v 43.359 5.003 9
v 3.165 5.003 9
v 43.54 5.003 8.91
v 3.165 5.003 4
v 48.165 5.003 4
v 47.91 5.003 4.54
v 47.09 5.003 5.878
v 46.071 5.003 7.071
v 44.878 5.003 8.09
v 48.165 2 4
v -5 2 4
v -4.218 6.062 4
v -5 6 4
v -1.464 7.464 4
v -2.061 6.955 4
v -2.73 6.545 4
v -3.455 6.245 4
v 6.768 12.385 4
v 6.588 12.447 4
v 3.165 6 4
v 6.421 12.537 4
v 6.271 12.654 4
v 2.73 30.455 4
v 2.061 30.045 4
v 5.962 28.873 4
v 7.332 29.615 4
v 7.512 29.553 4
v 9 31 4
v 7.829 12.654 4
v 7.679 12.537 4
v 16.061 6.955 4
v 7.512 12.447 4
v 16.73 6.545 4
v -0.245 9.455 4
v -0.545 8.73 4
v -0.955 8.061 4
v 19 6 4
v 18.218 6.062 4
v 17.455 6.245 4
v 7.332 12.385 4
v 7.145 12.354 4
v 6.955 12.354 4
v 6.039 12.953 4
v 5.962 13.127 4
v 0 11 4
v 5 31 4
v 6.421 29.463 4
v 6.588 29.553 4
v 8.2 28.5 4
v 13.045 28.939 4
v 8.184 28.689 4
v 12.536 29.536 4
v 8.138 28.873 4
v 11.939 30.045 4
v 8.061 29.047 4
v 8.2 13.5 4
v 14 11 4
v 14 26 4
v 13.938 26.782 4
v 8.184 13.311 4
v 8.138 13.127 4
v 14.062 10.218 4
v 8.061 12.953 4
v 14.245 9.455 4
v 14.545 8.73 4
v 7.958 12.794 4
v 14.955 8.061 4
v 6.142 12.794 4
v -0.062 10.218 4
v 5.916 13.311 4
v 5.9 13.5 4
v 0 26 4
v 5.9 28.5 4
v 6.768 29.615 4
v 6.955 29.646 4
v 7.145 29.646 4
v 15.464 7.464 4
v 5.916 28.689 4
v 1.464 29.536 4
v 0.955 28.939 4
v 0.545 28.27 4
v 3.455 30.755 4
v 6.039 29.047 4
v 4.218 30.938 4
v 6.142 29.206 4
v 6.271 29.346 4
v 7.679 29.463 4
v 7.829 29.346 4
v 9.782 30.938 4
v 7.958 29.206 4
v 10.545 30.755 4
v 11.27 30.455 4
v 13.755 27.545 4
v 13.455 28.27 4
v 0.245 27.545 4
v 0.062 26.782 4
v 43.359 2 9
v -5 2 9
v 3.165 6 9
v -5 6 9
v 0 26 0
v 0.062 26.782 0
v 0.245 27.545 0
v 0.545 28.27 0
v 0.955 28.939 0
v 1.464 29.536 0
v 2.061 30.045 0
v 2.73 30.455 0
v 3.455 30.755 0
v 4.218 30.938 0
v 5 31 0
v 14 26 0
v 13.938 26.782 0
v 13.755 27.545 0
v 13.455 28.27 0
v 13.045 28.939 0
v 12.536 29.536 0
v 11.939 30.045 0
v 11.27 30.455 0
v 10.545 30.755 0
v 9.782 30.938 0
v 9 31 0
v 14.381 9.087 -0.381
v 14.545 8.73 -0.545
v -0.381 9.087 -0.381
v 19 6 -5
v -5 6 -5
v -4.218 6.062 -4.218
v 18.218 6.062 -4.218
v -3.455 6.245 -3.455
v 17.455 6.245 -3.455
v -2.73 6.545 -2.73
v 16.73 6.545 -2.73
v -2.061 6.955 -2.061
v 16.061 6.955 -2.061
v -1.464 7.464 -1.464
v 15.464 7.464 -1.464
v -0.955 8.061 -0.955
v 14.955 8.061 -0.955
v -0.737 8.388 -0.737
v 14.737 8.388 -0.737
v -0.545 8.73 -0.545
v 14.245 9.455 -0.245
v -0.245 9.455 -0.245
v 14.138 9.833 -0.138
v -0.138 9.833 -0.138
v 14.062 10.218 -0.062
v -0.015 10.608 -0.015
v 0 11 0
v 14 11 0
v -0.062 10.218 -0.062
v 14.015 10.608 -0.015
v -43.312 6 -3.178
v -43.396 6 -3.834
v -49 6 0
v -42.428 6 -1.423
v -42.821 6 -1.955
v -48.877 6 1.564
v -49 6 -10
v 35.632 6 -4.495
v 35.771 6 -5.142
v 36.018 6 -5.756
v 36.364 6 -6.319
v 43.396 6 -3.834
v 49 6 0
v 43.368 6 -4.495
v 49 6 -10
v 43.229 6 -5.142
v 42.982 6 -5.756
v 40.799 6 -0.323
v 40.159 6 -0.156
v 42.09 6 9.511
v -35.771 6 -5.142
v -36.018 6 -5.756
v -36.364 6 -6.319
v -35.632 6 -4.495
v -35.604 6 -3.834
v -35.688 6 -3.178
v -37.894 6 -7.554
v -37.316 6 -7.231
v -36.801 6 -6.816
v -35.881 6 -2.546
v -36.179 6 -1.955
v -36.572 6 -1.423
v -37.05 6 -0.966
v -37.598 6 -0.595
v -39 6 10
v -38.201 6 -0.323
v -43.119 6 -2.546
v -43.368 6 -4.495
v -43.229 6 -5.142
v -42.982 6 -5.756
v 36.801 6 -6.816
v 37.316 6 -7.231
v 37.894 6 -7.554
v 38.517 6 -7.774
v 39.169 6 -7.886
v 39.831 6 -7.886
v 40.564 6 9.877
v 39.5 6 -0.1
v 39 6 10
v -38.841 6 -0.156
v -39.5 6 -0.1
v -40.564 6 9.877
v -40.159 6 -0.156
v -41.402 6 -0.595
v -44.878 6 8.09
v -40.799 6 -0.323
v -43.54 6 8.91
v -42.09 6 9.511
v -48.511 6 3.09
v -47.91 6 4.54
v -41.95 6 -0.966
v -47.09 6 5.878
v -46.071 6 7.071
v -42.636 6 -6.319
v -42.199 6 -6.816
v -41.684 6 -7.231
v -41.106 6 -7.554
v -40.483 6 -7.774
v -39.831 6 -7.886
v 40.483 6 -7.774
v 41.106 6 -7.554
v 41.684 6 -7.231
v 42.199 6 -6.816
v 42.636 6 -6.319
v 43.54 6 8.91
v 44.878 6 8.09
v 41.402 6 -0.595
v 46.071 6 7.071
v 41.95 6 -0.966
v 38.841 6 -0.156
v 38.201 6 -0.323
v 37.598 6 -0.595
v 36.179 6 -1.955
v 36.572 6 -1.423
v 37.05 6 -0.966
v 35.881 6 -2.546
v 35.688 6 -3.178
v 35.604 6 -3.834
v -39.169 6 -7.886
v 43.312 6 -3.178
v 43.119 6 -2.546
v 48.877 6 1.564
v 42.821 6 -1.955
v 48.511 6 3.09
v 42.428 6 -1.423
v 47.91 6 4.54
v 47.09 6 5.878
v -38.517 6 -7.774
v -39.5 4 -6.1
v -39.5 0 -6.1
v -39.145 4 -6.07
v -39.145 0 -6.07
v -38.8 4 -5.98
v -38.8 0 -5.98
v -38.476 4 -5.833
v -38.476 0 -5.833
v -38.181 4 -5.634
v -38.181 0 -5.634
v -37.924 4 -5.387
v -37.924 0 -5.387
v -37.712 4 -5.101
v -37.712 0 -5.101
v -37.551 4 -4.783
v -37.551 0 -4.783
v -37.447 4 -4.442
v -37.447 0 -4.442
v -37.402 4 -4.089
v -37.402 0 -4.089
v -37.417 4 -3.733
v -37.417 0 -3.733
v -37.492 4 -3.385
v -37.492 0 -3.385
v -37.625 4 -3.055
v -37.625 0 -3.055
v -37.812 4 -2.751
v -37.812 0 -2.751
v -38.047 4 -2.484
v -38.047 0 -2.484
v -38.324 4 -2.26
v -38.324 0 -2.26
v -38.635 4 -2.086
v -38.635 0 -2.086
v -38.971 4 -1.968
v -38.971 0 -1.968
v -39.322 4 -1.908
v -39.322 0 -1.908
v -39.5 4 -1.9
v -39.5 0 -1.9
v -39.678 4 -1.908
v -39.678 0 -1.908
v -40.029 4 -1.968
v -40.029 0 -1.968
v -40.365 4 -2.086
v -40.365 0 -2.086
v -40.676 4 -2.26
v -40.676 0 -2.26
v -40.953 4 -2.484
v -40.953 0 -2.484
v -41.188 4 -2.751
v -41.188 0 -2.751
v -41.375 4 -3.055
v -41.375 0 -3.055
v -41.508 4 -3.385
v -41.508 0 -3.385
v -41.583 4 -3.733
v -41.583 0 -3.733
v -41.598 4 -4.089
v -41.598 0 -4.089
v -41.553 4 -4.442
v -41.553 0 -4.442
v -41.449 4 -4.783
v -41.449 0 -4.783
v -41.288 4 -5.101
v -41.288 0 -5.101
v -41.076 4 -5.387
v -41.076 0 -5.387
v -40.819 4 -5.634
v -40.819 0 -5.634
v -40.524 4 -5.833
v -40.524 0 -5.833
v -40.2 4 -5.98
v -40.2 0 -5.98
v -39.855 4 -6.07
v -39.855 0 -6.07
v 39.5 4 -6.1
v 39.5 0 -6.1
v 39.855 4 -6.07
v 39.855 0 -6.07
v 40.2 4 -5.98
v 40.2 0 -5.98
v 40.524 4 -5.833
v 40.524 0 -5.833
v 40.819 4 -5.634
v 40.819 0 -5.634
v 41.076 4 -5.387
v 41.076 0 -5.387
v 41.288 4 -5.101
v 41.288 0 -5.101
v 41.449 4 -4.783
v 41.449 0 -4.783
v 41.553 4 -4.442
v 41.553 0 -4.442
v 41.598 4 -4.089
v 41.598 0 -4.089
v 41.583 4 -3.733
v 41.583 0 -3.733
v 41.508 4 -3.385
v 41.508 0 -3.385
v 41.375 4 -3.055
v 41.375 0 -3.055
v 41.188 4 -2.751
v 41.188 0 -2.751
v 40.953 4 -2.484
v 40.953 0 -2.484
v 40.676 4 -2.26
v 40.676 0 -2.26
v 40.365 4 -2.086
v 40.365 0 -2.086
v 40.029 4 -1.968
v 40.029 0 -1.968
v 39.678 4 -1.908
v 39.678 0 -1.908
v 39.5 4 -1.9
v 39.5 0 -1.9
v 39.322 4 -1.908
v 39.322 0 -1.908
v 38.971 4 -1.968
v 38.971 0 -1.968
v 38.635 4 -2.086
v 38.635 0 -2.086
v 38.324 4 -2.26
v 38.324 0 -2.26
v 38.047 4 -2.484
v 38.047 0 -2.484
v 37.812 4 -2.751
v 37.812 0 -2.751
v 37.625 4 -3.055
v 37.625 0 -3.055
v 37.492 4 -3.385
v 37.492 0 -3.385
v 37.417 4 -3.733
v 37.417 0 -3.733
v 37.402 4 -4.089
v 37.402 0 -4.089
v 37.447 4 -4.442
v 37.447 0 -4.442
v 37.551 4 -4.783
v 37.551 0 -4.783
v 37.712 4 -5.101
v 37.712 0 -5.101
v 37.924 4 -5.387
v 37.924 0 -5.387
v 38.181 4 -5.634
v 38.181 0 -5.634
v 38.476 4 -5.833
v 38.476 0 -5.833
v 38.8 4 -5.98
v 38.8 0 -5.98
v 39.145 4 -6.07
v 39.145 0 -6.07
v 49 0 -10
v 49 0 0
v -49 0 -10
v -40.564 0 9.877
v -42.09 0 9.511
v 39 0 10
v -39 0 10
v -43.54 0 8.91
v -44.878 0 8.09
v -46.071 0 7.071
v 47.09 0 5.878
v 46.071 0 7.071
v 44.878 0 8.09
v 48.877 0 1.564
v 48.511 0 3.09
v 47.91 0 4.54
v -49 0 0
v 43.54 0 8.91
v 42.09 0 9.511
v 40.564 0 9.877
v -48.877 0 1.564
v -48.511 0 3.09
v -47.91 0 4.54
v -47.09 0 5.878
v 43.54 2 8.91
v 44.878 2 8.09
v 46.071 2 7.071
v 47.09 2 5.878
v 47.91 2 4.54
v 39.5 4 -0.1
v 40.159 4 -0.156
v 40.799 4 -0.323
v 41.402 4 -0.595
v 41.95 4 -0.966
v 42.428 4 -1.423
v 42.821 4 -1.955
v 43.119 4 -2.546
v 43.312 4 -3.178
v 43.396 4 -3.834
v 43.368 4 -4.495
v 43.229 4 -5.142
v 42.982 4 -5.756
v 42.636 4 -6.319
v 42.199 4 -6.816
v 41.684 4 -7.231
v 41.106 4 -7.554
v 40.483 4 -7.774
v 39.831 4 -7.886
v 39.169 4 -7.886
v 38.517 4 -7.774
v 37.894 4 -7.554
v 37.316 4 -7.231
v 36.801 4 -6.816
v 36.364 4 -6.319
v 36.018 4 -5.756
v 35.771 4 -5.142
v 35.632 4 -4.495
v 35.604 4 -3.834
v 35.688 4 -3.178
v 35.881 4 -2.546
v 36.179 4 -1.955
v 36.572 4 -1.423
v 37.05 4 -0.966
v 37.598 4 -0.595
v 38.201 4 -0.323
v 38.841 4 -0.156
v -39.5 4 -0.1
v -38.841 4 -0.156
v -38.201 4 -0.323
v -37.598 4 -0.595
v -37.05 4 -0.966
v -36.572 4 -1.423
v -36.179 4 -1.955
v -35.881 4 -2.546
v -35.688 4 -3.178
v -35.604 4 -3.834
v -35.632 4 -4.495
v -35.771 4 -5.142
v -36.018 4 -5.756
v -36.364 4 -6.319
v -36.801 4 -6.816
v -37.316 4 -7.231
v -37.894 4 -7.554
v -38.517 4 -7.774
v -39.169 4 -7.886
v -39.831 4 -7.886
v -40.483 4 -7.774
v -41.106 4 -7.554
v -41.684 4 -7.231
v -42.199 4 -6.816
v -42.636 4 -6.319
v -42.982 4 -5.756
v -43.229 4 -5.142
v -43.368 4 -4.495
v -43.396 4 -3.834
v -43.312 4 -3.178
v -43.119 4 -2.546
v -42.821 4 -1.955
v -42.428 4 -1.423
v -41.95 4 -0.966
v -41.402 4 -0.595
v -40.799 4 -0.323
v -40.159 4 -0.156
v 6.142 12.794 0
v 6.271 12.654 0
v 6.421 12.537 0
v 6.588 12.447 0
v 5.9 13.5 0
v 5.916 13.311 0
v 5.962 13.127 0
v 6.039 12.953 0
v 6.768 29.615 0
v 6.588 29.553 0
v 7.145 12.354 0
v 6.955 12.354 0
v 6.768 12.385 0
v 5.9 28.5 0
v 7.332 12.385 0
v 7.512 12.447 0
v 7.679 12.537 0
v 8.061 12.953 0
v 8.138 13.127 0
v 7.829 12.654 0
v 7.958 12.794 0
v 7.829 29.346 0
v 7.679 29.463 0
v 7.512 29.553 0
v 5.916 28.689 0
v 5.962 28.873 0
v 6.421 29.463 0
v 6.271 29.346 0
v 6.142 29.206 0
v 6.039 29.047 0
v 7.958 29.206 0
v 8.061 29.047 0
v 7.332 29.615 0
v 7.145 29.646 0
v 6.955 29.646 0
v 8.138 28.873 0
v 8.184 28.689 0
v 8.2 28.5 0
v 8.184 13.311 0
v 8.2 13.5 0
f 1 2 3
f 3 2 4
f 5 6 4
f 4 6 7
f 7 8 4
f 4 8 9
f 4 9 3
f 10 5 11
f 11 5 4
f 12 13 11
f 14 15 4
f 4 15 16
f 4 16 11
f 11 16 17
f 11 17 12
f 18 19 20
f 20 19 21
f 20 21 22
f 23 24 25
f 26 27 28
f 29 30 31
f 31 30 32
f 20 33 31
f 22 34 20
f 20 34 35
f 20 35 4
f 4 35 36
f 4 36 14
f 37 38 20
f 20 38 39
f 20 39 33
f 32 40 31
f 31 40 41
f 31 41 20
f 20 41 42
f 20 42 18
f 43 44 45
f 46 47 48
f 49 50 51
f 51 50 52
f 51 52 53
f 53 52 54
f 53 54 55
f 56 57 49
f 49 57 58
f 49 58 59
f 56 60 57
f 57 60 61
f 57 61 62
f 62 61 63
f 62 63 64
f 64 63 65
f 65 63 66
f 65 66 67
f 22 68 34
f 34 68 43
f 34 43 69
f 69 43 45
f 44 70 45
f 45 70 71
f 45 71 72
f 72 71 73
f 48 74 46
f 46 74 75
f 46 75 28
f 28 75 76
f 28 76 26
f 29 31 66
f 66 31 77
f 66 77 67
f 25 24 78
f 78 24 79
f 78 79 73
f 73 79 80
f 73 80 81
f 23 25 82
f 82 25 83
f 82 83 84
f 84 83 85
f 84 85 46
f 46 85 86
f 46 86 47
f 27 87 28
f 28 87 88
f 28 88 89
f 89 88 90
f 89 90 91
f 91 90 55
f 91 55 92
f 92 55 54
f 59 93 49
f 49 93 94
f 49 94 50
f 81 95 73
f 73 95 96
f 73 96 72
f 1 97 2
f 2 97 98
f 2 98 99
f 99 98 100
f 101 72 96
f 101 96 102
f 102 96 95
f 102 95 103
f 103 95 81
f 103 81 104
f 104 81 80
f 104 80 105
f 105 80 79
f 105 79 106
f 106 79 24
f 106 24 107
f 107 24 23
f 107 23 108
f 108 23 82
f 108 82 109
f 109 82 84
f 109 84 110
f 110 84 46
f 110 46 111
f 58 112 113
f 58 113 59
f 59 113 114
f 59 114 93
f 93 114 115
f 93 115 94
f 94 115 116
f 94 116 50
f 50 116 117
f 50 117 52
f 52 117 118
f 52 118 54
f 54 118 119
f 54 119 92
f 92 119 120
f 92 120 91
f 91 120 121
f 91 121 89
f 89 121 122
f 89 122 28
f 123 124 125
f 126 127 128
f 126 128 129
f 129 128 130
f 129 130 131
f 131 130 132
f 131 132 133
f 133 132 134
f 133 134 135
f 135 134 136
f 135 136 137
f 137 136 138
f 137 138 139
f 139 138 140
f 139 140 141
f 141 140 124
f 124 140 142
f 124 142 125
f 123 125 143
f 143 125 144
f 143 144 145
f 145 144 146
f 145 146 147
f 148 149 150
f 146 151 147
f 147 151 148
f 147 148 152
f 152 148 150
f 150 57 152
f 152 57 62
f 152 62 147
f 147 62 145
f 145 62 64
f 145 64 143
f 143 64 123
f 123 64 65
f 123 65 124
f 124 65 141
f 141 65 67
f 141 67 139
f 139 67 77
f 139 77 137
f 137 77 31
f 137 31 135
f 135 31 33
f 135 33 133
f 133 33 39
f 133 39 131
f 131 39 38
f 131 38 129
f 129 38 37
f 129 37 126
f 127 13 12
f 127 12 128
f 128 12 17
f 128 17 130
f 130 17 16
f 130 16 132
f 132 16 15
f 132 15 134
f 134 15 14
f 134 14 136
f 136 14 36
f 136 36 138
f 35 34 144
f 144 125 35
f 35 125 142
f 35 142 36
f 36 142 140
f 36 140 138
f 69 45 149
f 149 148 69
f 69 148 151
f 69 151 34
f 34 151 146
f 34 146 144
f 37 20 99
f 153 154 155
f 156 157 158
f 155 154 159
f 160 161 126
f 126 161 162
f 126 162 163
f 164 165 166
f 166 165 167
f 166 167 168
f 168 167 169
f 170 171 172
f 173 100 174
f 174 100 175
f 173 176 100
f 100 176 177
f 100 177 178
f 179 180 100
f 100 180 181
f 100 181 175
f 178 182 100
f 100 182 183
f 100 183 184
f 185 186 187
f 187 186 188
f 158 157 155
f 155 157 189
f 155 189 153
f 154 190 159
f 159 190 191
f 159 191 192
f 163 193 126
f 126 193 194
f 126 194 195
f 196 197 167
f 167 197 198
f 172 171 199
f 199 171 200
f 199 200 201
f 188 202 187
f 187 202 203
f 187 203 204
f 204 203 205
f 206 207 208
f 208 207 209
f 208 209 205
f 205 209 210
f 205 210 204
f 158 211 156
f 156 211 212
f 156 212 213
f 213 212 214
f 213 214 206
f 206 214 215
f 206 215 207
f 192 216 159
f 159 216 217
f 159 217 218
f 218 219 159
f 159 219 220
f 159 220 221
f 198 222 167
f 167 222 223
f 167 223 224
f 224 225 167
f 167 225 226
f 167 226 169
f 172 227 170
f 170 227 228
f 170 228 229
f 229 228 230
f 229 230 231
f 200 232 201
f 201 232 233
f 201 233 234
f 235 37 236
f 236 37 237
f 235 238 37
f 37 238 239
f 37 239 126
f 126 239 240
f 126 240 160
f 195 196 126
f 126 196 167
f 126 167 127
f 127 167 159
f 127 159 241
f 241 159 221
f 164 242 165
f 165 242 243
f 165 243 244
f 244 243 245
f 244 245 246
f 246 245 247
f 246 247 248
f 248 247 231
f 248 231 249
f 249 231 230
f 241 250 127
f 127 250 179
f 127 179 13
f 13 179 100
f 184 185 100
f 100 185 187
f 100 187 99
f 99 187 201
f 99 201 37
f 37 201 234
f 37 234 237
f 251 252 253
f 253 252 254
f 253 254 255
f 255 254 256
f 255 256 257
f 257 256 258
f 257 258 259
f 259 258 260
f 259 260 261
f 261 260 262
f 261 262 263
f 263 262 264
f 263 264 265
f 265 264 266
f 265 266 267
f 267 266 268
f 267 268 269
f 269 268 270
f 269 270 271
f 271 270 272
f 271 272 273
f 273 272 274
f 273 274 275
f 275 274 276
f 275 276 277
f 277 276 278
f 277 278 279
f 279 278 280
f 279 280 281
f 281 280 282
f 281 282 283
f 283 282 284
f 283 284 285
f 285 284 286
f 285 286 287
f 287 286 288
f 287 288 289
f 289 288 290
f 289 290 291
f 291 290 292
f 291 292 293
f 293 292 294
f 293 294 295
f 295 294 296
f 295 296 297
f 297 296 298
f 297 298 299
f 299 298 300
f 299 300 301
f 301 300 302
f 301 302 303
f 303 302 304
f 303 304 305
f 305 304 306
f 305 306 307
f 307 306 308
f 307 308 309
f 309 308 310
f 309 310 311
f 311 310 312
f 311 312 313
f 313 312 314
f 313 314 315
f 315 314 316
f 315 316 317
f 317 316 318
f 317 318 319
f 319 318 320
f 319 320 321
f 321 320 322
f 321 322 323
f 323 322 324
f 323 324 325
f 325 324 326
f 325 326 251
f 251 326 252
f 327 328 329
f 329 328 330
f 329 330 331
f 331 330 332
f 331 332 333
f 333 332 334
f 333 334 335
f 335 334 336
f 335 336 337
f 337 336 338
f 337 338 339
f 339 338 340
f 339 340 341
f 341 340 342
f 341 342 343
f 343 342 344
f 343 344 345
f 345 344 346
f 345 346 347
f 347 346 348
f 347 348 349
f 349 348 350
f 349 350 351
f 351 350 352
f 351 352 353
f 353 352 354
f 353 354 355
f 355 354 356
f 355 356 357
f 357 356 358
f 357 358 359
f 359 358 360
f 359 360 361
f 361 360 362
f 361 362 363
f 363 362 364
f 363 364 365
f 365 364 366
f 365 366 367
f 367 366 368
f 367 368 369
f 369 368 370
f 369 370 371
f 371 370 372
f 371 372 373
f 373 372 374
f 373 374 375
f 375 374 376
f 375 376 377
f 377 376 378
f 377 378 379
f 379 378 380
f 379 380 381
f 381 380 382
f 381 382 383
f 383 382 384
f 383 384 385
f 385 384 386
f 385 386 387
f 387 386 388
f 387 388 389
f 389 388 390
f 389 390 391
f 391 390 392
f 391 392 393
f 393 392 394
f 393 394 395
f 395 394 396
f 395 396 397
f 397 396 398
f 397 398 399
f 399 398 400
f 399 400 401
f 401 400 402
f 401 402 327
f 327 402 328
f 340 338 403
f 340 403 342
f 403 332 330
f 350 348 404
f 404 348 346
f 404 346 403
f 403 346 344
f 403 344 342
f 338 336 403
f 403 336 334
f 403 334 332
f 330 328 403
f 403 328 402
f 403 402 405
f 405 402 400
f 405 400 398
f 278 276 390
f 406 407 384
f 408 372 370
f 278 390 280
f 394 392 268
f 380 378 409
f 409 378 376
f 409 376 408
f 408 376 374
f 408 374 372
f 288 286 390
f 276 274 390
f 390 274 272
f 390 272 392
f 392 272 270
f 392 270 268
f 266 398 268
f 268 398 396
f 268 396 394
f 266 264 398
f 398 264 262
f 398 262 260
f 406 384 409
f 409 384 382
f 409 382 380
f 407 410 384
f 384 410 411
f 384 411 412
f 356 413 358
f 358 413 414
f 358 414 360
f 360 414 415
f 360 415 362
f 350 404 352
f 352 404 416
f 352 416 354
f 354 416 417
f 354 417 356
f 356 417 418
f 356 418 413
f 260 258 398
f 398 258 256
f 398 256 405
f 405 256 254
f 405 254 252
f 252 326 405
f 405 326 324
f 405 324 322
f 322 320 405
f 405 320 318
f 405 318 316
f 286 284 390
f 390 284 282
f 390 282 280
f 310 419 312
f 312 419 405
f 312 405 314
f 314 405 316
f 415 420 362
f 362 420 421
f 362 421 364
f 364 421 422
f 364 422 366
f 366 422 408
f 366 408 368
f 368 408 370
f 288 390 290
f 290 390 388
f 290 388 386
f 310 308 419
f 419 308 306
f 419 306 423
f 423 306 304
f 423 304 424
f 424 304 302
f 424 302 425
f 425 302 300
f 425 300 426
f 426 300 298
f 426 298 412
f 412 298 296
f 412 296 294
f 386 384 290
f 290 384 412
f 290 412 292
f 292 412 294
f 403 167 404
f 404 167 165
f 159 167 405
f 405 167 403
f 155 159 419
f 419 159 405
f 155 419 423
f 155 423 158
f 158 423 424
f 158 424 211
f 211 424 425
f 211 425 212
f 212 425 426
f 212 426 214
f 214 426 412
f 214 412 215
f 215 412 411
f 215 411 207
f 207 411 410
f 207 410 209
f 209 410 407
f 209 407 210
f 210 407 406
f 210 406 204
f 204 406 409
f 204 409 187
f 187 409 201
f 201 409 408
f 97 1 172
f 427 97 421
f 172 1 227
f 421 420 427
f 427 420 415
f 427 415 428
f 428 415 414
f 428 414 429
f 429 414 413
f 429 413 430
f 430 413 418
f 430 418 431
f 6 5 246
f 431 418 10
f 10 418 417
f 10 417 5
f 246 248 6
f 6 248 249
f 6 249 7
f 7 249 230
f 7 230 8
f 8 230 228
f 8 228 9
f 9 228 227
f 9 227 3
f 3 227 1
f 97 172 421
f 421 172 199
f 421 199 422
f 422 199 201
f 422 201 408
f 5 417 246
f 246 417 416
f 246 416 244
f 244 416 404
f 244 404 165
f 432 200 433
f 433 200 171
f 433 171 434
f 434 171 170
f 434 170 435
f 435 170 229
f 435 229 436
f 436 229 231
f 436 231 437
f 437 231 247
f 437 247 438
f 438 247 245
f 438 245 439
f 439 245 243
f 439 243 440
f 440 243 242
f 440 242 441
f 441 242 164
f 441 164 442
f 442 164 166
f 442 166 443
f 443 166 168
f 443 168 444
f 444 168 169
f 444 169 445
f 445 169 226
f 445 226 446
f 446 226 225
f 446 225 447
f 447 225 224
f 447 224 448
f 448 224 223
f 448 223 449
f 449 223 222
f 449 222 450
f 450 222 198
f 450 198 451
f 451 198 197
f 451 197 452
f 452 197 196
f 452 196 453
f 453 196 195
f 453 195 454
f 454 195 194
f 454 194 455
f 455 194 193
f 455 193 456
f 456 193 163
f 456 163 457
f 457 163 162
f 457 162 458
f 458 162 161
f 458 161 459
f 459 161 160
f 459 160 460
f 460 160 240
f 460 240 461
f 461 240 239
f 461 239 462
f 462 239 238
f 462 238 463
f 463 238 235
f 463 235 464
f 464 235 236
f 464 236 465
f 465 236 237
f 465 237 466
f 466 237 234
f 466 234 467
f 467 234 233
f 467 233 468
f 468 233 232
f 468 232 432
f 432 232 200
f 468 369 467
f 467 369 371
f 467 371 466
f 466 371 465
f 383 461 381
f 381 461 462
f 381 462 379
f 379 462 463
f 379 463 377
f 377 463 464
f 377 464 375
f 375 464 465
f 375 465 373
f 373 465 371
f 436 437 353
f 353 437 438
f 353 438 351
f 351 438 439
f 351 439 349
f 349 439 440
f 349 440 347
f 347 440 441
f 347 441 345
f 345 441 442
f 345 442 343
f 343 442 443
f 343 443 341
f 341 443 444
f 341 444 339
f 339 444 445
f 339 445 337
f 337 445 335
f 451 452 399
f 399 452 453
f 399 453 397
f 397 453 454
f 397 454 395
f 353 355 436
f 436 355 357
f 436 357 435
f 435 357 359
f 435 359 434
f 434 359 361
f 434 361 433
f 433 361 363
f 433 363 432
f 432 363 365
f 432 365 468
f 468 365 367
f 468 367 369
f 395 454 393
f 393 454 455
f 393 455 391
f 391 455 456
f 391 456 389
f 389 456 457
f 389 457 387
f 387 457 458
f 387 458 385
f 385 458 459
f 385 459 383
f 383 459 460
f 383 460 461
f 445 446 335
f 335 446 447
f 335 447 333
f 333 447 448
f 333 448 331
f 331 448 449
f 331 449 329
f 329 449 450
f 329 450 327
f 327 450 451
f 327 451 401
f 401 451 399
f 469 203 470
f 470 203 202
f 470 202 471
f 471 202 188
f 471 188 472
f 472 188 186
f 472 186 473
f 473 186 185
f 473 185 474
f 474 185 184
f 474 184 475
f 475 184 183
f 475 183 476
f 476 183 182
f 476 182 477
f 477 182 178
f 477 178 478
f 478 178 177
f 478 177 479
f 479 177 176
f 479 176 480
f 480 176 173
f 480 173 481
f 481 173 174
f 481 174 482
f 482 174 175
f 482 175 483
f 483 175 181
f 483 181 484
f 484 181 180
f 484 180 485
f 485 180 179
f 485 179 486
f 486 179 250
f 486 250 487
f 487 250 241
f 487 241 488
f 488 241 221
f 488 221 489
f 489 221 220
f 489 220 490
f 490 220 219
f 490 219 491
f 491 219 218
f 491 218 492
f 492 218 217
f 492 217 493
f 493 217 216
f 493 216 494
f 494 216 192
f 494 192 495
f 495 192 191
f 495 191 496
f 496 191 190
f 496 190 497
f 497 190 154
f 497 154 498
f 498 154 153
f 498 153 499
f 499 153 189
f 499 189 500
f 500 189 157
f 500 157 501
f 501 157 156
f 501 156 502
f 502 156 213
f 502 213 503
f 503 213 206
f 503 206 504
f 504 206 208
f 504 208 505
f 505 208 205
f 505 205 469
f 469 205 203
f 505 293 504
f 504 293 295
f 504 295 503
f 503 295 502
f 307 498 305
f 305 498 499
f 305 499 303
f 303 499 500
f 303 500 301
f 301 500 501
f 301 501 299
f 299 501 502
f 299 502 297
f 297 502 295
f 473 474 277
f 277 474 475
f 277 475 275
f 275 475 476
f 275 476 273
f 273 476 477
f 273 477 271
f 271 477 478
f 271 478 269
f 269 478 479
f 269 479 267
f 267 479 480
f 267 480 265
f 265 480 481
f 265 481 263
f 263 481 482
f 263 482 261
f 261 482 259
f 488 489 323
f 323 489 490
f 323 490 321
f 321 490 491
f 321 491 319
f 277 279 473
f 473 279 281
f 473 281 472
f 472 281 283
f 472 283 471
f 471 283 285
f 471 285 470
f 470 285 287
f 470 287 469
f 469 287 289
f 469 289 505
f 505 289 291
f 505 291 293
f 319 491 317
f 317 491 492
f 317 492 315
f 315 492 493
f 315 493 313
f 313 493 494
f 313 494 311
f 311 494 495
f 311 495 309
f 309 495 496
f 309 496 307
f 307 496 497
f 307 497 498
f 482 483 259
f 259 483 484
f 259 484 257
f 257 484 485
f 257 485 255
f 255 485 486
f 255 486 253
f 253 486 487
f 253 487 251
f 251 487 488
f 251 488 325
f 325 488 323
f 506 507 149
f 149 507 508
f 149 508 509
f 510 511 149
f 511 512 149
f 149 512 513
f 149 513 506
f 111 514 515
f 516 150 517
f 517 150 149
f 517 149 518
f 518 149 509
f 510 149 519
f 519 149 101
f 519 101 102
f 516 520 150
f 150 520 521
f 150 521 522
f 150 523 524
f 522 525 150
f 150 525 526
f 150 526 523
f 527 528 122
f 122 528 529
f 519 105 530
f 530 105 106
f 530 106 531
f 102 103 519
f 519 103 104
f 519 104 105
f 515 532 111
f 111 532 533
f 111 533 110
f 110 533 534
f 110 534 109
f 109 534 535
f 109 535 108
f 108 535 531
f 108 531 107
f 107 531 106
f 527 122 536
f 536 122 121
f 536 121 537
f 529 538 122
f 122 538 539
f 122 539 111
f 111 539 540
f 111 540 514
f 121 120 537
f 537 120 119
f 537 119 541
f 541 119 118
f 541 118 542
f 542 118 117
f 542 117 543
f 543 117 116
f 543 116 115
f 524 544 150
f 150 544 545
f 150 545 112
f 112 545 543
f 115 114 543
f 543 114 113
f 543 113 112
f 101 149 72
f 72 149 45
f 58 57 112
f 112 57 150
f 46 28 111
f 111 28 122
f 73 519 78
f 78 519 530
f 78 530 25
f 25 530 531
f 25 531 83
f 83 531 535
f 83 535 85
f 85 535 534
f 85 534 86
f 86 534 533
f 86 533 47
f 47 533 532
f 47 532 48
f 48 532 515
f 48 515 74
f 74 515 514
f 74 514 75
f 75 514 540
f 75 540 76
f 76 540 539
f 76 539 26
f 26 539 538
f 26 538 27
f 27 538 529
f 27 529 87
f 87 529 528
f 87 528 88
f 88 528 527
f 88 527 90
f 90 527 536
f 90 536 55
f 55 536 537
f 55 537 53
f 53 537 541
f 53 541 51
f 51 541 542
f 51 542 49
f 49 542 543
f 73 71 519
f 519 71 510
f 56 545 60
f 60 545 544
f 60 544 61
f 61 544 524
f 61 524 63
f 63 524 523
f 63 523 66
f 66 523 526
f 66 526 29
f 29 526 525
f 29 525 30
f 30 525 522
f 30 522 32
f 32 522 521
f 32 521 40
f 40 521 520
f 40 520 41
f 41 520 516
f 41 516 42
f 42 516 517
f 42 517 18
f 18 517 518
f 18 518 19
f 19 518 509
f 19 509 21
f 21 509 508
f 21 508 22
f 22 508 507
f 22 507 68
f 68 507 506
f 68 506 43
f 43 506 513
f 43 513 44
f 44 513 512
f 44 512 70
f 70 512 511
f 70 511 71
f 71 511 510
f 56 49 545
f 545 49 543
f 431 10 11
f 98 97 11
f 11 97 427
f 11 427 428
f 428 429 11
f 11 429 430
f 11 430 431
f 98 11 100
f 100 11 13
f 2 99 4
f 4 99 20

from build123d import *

# Parameters (mm, degrees)
CROQUIS1_R              = 2.1
SALIENTE_EXTRUIR1_DEPTH = 6
CROQUIS2_R              = 3.9
CORTAR_EXTRUIR1_DEPTH   = 2
CROQUIS3_W              = 14
CROQUIS3_H              = 4
SALIENTE_EXTRUIR2_DEPTH = 25
REDONDEO4_R             = 5
CORTAR_EXTRUIR6_DEPTH   = 4
REDONDEO7_R             = 5
REDONDEO8_R             = 5
CROQUIS5_W              = 5
CROQUIS5_H              = 8
CORTAR_EXTRUIR9_DEPTH   = 54
CROQUIS11_W             = 45
CROQUIS11_H             = 0.996592172
SALIENTE_EXTRUIR7_DEPTH = 5
CORTAR_EXTRUIR10_START  = -5
CORTAR_EXTRUIR10_DEPTH  = 5


with BuildPart() as part:
    # Croquis1 → Saliente-Extruir1 (new body)
    with BuildSketch(Plane(origin=(0, 0, 0), x_dir=(1, 0, 0), z_dir=(0, 1, 0))):
        with BuildLine():
            Line((-39, -10), (39, -10))
            ThreePointArc((39, -10), (46.071067812, -7.071067812), (49, 0))
            Line((49, 0), (49, 10))
            Line((49, 10), (-49, 10))
            Line((-49, 10), (-49, 0))
            ThreePointArc((-49, 0), (-46.071067812, -7.071067812), (-39, -10))
        make_face()
        with Locations(Location((-39.5, 4, 0), (0, 0, 270))):
            Circle(CROQUIS1_R, mode=Mode.SUBTRACT)
        with Locations(Location((39.5, 4, 0), (0, 0, 270))):
            Circle(CROQUIS1_R, mode=Mode.SUBTRACT)
    extrude(amount=SALIENTE_EXTRUIR1_DEPTH)

    # Croquis2 → Cortar-Extruir1 (cut)
    with BuildSketch(Plane(origin=(0, 6, 0), x_dir=(1, 0, 0), z_dir=(0, 1, 0))):
        with Locations(Location((39.5, 4, 0), (0, 0, 270))):
            Circle(CROQUIS2_R)
        with Locations(Location((-39.5, 4, 0), (0, 0, 270))):
            Circle(CROQUIS2_R)
    extrude(amount=-CORTAR_EXTRUIR1_DEPTH, mode=Mode.SUBTRACT)

    # Croquis3 → Saliente-Extruir2 (add)
    with BuildSketch(Plane(origin=(0, 6, 0), x_dir=(1, 0, 0), z_dir=(0, 1, 0))):
        with Locations((7, -2)):
            Rectangle(CROQUIS3_W, CROQUIS3_H)
    extrude(amount=SALIENTE_EXTRUIR2_DEPTH)

    # Redondeo4
    redondeo4_edges = [part.edges().sort_by_distance(p)[0] for p in [
        (7, 6, 0),
        (0, 6, 2),
        (14, 6, 2),
    ]]
    fillet(redondeo4_edges, radius=REDONDEO4_R)

    # Croquis4 → Cortar-Extruir6 (cut)
    with BuildSketch(Plane(origin=(0, 0, 0), x_dir=(-1, 0, 0), z_dir=(0, 0, -1))):
        with BuildLine():
            Line((-5.9, 28.5), (-5.9, 13.5))
            ThreePointArc((-5.9, 13.5), (-7.05, 12.35), (-8.2, 13.5))
            Line((-8.2, 13.5), (-8.2, 28.5))
            ThreePointArc((-8.2, 28.5), (-7.05, 29.65), (-5.9, 28.5))
        make_face()
    extrude(amount=-CORTAR_EXTRUIR6_DEPTH, mode=Mode.SUBTRACT)

    # Redondeo7
    redondeo7_edges = [part.edges().sort_by_distance(p)[0] for p in [
        (14, 31, 2),
    ]]
    fillet(redondeo7_edges, radius=REDONDEO7_R)

    # Redondeo8
    redondeo8_edges = [part.edges().sort_by_distance(p)[0] for p in [
        (0, 31, 2),
    ]]
    fillet(redondeo8_edges, radius=REDONDEO8_R)

    # Croquis5 → Cortar-Extruir9 (cut)
    with BuildSketch(Plane(origin=(49, 0, 0), x_dir=(0, 0, -1), z_dir=(1, 0, 0))):
        with Locations((-6.5, 6)):
            Rectangle(CROQUIS5_W, CROQUIS5_H)
    extrude(amount=-CORTAR_EXTRUIR9_DEPTH, mode=Mode.SUBTRACT)

    # Croquis11 → Saliente-Extruir7 (add)
    with BuildSketch(Plane.XY.offset(4)):
        with Locations((25.66515139, 5.501703914)):
            Rectangle(CROQUIS11_W, CROQUIS11_H)
    extrude(amount=SALIENTE_EXTRUIR7_DEPTH)

    # Croquis12 → Cortar-Extruir10 (cut)
    with BuildSketch(Plane(origin=(0, 6, 0), x_dir=(1, 0, 0), z_dir=(0, 1, 0)).offset(CORTAR_EXTRUIR10_START)):
        with BuildLine():
            Line((49, 10), (57.140229863, 10))
            Line((57.140229863, 10), (57.737940114, -14.066484251))
            Line((57.737940114, -14.066484251), (14, -12.561195781))
            Line((14, -12.561195781), (14, -10))
            Line((14, -10), (39, -10))
            ThreePointArc((39, -10), (46.071067812, -7.071067812), (49, 0))
            Line((49, 0), (49, 10))
        make_face()
    extrude(amount=CORTAR_EXTRUIR10_DEPTH, mode=Mode.SUBTRACT)


solid = part.part
